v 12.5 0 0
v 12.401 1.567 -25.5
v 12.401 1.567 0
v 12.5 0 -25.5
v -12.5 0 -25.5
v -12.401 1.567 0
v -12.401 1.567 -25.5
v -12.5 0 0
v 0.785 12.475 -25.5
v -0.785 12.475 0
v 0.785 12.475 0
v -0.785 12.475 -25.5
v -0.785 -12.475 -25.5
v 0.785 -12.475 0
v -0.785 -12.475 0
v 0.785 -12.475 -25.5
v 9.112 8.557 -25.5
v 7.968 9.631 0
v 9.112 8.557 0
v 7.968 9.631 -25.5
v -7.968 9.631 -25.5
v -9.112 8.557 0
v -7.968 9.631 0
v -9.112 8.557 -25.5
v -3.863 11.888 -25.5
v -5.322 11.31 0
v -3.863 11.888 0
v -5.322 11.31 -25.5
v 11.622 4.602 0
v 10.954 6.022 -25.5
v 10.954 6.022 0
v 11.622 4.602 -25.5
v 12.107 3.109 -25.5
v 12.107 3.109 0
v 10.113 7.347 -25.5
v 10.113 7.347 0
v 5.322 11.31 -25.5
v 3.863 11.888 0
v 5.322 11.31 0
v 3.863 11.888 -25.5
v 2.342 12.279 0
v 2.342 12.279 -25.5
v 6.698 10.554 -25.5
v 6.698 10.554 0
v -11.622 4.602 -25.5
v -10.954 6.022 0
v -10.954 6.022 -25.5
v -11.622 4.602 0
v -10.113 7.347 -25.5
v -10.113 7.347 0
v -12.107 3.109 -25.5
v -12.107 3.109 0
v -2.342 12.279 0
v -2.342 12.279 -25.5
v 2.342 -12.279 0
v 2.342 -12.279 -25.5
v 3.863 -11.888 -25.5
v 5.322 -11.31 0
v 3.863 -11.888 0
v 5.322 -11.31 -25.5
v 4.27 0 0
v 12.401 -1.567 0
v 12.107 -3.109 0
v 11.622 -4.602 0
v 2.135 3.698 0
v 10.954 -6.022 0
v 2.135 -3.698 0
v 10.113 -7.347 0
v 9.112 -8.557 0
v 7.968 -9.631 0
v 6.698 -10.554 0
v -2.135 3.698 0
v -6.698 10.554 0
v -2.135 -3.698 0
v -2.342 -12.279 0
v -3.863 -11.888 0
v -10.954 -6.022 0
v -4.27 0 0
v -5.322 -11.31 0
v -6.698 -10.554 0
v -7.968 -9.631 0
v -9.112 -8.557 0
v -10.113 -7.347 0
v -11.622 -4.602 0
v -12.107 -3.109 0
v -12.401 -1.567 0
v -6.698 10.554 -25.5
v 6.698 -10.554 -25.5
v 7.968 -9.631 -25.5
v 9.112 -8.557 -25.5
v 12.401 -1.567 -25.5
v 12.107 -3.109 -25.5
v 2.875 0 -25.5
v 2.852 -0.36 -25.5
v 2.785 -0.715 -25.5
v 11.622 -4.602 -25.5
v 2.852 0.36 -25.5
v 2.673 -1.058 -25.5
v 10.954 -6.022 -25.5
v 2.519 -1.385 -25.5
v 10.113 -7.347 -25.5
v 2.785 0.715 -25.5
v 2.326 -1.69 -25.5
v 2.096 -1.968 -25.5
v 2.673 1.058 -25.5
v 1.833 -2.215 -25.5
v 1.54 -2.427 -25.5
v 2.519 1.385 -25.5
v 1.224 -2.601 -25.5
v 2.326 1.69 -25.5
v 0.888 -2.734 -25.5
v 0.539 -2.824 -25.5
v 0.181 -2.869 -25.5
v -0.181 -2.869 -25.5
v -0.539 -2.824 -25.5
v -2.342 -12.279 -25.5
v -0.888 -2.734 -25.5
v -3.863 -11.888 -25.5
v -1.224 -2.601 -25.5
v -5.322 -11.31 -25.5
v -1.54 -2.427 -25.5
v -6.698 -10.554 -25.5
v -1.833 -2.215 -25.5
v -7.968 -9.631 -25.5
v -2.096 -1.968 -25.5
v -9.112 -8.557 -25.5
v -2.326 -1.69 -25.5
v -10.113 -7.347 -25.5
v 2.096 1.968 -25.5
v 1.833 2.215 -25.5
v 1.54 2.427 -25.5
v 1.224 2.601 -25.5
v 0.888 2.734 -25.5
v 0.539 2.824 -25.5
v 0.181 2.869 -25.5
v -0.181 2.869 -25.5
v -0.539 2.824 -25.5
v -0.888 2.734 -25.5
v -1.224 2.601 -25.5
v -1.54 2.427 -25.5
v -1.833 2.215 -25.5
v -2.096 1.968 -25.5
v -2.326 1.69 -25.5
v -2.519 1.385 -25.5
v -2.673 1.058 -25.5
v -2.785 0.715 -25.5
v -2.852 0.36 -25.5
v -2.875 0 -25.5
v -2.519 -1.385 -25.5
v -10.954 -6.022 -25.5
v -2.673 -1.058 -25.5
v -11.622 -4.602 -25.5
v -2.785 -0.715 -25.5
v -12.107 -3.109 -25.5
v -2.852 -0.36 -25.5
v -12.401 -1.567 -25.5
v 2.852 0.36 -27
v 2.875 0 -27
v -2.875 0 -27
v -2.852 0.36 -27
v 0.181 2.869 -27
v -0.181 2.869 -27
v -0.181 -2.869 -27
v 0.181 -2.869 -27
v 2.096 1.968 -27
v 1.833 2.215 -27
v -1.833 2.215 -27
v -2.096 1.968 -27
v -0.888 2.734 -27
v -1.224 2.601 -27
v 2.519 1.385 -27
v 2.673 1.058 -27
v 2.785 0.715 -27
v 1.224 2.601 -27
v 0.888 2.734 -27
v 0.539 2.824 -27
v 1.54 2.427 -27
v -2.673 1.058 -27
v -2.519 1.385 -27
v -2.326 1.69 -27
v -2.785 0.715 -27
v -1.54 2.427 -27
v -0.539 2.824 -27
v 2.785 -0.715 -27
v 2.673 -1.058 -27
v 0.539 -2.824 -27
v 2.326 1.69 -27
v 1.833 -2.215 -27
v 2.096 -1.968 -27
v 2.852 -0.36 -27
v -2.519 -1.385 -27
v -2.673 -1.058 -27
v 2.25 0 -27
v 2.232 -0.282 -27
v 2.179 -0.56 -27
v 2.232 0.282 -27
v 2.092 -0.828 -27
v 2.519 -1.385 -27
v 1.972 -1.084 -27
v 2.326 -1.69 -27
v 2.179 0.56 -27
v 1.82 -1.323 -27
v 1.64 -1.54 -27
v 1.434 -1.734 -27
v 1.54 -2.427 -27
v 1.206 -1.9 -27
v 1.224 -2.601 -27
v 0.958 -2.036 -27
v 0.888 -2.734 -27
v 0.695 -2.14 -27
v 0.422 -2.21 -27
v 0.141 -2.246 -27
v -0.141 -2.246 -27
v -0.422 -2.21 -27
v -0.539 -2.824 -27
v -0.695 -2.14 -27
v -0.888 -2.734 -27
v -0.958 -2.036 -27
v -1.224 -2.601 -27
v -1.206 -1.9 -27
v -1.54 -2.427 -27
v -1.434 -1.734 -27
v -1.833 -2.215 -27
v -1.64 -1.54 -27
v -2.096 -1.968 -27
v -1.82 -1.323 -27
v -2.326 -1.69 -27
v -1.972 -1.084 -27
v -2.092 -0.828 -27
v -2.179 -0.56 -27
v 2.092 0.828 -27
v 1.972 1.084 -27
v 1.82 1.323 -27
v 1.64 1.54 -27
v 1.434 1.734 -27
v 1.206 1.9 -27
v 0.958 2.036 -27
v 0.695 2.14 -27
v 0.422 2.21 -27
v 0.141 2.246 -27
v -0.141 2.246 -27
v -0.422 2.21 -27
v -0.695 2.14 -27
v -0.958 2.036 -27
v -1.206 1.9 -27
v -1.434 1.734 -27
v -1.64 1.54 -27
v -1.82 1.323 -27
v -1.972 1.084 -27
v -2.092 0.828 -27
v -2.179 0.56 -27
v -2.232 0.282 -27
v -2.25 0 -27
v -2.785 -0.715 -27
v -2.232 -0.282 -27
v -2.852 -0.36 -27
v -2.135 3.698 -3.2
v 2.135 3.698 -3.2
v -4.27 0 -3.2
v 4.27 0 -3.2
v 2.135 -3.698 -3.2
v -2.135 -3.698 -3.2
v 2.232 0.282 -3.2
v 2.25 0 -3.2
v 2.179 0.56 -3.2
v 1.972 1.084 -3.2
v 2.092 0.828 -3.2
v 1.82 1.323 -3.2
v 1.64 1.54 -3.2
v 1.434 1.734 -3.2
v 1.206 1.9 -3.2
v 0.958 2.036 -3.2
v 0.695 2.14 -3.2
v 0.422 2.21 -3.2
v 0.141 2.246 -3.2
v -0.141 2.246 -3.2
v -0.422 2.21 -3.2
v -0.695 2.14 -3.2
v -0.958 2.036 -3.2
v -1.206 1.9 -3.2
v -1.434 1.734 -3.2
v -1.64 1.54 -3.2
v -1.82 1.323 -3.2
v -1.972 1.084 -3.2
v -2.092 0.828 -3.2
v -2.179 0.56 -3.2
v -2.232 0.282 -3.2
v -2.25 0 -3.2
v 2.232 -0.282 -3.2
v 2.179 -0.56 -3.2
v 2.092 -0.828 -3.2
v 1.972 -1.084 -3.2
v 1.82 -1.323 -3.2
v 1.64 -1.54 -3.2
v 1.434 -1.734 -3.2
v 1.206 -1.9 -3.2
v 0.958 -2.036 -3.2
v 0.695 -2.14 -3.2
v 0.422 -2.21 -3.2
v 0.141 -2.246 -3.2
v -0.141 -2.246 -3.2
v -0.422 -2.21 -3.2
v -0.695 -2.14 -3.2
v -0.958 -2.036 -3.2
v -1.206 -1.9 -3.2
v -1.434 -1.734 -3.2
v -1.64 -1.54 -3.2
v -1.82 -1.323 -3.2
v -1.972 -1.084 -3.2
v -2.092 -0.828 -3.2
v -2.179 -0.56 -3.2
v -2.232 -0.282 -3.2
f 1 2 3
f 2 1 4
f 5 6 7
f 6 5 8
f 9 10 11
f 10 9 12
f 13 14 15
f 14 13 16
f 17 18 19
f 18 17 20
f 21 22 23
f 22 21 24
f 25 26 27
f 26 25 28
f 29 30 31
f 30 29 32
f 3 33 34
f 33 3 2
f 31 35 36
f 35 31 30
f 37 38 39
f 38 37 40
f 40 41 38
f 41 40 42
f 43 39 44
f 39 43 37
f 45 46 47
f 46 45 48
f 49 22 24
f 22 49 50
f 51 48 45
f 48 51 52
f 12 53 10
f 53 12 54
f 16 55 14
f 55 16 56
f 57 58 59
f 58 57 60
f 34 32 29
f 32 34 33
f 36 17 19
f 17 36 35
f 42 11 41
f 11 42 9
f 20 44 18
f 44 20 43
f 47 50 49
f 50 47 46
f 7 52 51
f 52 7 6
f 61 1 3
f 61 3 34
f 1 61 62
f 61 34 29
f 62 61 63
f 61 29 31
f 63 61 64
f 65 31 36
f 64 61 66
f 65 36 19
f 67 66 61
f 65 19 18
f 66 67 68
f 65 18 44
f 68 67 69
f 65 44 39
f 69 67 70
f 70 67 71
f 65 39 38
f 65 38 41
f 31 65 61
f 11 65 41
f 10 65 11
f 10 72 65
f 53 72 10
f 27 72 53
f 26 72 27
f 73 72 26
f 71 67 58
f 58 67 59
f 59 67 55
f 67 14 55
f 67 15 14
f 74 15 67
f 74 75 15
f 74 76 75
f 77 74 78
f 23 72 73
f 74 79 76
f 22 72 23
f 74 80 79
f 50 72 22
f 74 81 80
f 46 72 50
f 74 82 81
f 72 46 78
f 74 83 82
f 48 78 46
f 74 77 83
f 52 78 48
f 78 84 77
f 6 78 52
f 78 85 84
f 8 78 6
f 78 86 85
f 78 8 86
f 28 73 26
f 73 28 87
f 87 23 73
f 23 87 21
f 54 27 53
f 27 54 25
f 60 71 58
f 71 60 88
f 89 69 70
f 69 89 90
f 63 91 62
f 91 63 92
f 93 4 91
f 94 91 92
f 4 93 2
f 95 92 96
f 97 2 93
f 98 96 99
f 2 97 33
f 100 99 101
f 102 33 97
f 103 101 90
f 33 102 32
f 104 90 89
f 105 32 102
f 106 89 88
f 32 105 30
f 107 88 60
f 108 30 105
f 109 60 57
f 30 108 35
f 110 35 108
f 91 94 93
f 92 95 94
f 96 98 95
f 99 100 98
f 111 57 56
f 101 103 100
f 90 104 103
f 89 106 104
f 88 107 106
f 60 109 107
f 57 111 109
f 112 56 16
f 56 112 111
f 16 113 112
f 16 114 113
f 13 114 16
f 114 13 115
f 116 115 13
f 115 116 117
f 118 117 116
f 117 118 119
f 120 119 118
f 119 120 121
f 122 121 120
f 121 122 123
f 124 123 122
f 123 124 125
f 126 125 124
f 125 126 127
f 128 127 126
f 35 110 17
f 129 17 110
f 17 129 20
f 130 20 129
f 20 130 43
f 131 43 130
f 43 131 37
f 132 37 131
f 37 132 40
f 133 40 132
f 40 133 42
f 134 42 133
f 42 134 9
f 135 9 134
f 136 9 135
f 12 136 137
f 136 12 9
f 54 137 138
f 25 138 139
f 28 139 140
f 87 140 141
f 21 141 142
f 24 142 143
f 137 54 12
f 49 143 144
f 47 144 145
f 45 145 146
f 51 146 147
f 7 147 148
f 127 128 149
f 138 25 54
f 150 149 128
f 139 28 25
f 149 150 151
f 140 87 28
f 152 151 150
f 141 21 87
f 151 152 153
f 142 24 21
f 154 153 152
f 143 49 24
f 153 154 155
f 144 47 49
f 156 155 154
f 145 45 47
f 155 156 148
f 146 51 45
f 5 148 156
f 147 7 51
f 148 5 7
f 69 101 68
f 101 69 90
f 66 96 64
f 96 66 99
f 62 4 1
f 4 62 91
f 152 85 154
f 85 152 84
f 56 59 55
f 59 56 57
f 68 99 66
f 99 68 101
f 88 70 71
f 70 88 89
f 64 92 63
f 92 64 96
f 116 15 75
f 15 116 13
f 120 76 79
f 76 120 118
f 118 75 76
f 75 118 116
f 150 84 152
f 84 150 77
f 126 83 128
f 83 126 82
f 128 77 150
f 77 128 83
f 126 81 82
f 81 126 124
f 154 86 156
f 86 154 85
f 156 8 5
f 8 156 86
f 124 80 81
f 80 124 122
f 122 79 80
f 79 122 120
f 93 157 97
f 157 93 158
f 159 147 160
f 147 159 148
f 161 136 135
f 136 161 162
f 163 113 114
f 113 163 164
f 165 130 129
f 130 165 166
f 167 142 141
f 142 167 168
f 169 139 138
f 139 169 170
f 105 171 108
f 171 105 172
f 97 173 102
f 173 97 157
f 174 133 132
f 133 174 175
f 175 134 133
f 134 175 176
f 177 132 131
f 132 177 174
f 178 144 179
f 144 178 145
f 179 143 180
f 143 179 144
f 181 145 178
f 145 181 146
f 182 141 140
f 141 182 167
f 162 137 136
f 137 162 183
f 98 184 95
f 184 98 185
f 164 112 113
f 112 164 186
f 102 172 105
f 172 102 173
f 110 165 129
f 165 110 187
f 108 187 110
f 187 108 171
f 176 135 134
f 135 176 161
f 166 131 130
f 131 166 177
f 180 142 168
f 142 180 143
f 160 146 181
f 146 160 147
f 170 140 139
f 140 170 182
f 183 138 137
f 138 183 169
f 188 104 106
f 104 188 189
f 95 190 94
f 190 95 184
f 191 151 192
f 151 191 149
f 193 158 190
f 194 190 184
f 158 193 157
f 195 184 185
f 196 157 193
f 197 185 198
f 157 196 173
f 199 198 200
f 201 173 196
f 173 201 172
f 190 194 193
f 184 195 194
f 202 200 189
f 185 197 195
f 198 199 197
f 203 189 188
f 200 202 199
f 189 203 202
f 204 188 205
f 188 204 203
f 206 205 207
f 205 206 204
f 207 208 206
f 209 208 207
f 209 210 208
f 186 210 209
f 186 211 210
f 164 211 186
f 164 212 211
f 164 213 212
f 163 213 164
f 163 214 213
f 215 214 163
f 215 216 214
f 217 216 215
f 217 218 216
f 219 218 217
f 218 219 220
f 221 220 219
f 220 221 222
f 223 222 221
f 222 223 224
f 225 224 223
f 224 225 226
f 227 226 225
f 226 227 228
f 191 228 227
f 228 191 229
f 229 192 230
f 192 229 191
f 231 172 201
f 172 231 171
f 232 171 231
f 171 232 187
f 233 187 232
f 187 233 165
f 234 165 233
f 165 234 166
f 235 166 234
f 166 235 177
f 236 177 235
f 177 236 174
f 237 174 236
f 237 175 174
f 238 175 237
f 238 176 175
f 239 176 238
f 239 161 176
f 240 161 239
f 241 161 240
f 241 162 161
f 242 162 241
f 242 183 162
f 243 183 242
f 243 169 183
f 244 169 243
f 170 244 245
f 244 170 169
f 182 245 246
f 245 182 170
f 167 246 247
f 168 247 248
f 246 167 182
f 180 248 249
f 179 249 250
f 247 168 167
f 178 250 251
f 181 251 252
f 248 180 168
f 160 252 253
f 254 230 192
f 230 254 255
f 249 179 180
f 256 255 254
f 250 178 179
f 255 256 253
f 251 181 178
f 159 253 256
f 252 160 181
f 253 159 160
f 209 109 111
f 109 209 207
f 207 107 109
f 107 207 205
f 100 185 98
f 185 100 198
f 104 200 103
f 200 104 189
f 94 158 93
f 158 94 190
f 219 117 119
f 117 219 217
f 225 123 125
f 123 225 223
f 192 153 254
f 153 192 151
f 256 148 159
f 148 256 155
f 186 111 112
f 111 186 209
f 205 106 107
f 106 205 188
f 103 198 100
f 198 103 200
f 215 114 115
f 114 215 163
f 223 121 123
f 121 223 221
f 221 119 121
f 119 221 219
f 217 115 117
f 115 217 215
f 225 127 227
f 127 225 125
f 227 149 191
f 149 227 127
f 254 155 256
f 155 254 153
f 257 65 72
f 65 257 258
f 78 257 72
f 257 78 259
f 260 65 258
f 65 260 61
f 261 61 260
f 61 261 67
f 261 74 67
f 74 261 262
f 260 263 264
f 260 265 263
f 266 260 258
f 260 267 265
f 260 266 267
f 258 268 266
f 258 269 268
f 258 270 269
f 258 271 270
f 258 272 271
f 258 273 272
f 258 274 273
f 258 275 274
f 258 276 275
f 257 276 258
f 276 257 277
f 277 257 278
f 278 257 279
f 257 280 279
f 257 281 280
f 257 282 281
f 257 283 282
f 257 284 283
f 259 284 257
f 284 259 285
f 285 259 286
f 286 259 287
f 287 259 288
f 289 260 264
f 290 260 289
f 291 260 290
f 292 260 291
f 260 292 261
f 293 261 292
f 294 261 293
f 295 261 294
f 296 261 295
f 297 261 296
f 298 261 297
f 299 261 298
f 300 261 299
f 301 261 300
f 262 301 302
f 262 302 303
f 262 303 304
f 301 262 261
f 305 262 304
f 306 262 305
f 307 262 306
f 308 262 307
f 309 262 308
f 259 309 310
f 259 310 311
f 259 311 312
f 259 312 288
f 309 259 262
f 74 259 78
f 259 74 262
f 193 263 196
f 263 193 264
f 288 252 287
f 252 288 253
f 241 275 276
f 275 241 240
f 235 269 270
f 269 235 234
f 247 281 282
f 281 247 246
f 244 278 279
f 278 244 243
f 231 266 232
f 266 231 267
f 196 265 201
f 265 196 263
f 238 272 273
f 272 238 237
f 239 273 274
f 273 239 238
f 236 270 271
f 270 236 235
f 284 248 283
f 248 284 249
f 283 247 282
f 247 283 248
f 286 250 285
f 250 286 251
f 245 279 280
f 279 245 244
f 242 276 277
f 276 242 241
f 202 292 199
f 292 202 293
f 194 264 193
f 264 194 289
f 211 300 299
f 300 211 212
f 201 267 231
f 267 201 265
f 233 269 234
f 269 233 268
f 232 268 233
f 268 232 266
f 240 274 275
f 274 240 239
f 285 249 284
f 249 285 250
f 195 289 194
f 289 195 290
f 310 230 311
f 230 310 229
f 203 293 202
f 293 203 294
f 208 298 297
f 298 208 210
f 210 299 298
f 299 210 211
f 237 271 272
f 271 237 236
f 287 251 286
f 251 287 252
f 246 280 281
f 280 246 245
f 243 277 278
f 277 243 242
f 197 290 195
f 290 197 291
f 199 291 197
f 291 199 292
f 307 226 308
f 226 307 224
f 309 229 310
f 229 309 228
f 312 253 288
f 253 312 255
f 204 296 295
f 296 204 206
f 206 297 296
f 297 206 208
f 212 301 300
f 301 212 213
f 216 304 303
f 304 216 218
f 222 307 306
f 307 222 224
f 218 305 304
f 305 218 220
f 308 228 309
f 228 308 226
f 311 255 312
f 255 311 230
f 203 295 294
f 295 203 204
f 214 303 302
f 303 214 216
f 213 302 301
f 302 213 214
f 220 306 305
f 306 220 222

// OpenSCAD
$fn = 50;


difference() {
	union() {
		translate(v = [0, 0, -25.5000000000]) {
			cylinder(h = 25.5000000000, r = 12.5000000000);
		}
		#translate(v = [0, 0, -27.0000000000]) {
			cylinder(h = 27, r = 2.8750000000);
		}
	}
	union() {
		translate(v = [0, 0, 0]) {
			rotate(a = [0, 0, 0]) {
				difference() {
					union() {
						translate(v = [0, 0, -3.2000000000]) {
							linear_extrude(height = 3.2000000000) {
								polygon(points = [[4.2698000000, 0.0000000000], [2.1349000000, 3.6977552691], [-2.1349000000, 3.6977552691], [-4.2698000000, 0.0000000000], [-2.1349000000, -3.6977552691], [2.1349000000, -3.6977552691]]);
							}
						}
					}
					union();
				}
			}
		}
		#translate(v = [0, 0, -100.0000000000]) {
			cylinder(h = 200, r = 2.2500000000);
		}
	}
}
